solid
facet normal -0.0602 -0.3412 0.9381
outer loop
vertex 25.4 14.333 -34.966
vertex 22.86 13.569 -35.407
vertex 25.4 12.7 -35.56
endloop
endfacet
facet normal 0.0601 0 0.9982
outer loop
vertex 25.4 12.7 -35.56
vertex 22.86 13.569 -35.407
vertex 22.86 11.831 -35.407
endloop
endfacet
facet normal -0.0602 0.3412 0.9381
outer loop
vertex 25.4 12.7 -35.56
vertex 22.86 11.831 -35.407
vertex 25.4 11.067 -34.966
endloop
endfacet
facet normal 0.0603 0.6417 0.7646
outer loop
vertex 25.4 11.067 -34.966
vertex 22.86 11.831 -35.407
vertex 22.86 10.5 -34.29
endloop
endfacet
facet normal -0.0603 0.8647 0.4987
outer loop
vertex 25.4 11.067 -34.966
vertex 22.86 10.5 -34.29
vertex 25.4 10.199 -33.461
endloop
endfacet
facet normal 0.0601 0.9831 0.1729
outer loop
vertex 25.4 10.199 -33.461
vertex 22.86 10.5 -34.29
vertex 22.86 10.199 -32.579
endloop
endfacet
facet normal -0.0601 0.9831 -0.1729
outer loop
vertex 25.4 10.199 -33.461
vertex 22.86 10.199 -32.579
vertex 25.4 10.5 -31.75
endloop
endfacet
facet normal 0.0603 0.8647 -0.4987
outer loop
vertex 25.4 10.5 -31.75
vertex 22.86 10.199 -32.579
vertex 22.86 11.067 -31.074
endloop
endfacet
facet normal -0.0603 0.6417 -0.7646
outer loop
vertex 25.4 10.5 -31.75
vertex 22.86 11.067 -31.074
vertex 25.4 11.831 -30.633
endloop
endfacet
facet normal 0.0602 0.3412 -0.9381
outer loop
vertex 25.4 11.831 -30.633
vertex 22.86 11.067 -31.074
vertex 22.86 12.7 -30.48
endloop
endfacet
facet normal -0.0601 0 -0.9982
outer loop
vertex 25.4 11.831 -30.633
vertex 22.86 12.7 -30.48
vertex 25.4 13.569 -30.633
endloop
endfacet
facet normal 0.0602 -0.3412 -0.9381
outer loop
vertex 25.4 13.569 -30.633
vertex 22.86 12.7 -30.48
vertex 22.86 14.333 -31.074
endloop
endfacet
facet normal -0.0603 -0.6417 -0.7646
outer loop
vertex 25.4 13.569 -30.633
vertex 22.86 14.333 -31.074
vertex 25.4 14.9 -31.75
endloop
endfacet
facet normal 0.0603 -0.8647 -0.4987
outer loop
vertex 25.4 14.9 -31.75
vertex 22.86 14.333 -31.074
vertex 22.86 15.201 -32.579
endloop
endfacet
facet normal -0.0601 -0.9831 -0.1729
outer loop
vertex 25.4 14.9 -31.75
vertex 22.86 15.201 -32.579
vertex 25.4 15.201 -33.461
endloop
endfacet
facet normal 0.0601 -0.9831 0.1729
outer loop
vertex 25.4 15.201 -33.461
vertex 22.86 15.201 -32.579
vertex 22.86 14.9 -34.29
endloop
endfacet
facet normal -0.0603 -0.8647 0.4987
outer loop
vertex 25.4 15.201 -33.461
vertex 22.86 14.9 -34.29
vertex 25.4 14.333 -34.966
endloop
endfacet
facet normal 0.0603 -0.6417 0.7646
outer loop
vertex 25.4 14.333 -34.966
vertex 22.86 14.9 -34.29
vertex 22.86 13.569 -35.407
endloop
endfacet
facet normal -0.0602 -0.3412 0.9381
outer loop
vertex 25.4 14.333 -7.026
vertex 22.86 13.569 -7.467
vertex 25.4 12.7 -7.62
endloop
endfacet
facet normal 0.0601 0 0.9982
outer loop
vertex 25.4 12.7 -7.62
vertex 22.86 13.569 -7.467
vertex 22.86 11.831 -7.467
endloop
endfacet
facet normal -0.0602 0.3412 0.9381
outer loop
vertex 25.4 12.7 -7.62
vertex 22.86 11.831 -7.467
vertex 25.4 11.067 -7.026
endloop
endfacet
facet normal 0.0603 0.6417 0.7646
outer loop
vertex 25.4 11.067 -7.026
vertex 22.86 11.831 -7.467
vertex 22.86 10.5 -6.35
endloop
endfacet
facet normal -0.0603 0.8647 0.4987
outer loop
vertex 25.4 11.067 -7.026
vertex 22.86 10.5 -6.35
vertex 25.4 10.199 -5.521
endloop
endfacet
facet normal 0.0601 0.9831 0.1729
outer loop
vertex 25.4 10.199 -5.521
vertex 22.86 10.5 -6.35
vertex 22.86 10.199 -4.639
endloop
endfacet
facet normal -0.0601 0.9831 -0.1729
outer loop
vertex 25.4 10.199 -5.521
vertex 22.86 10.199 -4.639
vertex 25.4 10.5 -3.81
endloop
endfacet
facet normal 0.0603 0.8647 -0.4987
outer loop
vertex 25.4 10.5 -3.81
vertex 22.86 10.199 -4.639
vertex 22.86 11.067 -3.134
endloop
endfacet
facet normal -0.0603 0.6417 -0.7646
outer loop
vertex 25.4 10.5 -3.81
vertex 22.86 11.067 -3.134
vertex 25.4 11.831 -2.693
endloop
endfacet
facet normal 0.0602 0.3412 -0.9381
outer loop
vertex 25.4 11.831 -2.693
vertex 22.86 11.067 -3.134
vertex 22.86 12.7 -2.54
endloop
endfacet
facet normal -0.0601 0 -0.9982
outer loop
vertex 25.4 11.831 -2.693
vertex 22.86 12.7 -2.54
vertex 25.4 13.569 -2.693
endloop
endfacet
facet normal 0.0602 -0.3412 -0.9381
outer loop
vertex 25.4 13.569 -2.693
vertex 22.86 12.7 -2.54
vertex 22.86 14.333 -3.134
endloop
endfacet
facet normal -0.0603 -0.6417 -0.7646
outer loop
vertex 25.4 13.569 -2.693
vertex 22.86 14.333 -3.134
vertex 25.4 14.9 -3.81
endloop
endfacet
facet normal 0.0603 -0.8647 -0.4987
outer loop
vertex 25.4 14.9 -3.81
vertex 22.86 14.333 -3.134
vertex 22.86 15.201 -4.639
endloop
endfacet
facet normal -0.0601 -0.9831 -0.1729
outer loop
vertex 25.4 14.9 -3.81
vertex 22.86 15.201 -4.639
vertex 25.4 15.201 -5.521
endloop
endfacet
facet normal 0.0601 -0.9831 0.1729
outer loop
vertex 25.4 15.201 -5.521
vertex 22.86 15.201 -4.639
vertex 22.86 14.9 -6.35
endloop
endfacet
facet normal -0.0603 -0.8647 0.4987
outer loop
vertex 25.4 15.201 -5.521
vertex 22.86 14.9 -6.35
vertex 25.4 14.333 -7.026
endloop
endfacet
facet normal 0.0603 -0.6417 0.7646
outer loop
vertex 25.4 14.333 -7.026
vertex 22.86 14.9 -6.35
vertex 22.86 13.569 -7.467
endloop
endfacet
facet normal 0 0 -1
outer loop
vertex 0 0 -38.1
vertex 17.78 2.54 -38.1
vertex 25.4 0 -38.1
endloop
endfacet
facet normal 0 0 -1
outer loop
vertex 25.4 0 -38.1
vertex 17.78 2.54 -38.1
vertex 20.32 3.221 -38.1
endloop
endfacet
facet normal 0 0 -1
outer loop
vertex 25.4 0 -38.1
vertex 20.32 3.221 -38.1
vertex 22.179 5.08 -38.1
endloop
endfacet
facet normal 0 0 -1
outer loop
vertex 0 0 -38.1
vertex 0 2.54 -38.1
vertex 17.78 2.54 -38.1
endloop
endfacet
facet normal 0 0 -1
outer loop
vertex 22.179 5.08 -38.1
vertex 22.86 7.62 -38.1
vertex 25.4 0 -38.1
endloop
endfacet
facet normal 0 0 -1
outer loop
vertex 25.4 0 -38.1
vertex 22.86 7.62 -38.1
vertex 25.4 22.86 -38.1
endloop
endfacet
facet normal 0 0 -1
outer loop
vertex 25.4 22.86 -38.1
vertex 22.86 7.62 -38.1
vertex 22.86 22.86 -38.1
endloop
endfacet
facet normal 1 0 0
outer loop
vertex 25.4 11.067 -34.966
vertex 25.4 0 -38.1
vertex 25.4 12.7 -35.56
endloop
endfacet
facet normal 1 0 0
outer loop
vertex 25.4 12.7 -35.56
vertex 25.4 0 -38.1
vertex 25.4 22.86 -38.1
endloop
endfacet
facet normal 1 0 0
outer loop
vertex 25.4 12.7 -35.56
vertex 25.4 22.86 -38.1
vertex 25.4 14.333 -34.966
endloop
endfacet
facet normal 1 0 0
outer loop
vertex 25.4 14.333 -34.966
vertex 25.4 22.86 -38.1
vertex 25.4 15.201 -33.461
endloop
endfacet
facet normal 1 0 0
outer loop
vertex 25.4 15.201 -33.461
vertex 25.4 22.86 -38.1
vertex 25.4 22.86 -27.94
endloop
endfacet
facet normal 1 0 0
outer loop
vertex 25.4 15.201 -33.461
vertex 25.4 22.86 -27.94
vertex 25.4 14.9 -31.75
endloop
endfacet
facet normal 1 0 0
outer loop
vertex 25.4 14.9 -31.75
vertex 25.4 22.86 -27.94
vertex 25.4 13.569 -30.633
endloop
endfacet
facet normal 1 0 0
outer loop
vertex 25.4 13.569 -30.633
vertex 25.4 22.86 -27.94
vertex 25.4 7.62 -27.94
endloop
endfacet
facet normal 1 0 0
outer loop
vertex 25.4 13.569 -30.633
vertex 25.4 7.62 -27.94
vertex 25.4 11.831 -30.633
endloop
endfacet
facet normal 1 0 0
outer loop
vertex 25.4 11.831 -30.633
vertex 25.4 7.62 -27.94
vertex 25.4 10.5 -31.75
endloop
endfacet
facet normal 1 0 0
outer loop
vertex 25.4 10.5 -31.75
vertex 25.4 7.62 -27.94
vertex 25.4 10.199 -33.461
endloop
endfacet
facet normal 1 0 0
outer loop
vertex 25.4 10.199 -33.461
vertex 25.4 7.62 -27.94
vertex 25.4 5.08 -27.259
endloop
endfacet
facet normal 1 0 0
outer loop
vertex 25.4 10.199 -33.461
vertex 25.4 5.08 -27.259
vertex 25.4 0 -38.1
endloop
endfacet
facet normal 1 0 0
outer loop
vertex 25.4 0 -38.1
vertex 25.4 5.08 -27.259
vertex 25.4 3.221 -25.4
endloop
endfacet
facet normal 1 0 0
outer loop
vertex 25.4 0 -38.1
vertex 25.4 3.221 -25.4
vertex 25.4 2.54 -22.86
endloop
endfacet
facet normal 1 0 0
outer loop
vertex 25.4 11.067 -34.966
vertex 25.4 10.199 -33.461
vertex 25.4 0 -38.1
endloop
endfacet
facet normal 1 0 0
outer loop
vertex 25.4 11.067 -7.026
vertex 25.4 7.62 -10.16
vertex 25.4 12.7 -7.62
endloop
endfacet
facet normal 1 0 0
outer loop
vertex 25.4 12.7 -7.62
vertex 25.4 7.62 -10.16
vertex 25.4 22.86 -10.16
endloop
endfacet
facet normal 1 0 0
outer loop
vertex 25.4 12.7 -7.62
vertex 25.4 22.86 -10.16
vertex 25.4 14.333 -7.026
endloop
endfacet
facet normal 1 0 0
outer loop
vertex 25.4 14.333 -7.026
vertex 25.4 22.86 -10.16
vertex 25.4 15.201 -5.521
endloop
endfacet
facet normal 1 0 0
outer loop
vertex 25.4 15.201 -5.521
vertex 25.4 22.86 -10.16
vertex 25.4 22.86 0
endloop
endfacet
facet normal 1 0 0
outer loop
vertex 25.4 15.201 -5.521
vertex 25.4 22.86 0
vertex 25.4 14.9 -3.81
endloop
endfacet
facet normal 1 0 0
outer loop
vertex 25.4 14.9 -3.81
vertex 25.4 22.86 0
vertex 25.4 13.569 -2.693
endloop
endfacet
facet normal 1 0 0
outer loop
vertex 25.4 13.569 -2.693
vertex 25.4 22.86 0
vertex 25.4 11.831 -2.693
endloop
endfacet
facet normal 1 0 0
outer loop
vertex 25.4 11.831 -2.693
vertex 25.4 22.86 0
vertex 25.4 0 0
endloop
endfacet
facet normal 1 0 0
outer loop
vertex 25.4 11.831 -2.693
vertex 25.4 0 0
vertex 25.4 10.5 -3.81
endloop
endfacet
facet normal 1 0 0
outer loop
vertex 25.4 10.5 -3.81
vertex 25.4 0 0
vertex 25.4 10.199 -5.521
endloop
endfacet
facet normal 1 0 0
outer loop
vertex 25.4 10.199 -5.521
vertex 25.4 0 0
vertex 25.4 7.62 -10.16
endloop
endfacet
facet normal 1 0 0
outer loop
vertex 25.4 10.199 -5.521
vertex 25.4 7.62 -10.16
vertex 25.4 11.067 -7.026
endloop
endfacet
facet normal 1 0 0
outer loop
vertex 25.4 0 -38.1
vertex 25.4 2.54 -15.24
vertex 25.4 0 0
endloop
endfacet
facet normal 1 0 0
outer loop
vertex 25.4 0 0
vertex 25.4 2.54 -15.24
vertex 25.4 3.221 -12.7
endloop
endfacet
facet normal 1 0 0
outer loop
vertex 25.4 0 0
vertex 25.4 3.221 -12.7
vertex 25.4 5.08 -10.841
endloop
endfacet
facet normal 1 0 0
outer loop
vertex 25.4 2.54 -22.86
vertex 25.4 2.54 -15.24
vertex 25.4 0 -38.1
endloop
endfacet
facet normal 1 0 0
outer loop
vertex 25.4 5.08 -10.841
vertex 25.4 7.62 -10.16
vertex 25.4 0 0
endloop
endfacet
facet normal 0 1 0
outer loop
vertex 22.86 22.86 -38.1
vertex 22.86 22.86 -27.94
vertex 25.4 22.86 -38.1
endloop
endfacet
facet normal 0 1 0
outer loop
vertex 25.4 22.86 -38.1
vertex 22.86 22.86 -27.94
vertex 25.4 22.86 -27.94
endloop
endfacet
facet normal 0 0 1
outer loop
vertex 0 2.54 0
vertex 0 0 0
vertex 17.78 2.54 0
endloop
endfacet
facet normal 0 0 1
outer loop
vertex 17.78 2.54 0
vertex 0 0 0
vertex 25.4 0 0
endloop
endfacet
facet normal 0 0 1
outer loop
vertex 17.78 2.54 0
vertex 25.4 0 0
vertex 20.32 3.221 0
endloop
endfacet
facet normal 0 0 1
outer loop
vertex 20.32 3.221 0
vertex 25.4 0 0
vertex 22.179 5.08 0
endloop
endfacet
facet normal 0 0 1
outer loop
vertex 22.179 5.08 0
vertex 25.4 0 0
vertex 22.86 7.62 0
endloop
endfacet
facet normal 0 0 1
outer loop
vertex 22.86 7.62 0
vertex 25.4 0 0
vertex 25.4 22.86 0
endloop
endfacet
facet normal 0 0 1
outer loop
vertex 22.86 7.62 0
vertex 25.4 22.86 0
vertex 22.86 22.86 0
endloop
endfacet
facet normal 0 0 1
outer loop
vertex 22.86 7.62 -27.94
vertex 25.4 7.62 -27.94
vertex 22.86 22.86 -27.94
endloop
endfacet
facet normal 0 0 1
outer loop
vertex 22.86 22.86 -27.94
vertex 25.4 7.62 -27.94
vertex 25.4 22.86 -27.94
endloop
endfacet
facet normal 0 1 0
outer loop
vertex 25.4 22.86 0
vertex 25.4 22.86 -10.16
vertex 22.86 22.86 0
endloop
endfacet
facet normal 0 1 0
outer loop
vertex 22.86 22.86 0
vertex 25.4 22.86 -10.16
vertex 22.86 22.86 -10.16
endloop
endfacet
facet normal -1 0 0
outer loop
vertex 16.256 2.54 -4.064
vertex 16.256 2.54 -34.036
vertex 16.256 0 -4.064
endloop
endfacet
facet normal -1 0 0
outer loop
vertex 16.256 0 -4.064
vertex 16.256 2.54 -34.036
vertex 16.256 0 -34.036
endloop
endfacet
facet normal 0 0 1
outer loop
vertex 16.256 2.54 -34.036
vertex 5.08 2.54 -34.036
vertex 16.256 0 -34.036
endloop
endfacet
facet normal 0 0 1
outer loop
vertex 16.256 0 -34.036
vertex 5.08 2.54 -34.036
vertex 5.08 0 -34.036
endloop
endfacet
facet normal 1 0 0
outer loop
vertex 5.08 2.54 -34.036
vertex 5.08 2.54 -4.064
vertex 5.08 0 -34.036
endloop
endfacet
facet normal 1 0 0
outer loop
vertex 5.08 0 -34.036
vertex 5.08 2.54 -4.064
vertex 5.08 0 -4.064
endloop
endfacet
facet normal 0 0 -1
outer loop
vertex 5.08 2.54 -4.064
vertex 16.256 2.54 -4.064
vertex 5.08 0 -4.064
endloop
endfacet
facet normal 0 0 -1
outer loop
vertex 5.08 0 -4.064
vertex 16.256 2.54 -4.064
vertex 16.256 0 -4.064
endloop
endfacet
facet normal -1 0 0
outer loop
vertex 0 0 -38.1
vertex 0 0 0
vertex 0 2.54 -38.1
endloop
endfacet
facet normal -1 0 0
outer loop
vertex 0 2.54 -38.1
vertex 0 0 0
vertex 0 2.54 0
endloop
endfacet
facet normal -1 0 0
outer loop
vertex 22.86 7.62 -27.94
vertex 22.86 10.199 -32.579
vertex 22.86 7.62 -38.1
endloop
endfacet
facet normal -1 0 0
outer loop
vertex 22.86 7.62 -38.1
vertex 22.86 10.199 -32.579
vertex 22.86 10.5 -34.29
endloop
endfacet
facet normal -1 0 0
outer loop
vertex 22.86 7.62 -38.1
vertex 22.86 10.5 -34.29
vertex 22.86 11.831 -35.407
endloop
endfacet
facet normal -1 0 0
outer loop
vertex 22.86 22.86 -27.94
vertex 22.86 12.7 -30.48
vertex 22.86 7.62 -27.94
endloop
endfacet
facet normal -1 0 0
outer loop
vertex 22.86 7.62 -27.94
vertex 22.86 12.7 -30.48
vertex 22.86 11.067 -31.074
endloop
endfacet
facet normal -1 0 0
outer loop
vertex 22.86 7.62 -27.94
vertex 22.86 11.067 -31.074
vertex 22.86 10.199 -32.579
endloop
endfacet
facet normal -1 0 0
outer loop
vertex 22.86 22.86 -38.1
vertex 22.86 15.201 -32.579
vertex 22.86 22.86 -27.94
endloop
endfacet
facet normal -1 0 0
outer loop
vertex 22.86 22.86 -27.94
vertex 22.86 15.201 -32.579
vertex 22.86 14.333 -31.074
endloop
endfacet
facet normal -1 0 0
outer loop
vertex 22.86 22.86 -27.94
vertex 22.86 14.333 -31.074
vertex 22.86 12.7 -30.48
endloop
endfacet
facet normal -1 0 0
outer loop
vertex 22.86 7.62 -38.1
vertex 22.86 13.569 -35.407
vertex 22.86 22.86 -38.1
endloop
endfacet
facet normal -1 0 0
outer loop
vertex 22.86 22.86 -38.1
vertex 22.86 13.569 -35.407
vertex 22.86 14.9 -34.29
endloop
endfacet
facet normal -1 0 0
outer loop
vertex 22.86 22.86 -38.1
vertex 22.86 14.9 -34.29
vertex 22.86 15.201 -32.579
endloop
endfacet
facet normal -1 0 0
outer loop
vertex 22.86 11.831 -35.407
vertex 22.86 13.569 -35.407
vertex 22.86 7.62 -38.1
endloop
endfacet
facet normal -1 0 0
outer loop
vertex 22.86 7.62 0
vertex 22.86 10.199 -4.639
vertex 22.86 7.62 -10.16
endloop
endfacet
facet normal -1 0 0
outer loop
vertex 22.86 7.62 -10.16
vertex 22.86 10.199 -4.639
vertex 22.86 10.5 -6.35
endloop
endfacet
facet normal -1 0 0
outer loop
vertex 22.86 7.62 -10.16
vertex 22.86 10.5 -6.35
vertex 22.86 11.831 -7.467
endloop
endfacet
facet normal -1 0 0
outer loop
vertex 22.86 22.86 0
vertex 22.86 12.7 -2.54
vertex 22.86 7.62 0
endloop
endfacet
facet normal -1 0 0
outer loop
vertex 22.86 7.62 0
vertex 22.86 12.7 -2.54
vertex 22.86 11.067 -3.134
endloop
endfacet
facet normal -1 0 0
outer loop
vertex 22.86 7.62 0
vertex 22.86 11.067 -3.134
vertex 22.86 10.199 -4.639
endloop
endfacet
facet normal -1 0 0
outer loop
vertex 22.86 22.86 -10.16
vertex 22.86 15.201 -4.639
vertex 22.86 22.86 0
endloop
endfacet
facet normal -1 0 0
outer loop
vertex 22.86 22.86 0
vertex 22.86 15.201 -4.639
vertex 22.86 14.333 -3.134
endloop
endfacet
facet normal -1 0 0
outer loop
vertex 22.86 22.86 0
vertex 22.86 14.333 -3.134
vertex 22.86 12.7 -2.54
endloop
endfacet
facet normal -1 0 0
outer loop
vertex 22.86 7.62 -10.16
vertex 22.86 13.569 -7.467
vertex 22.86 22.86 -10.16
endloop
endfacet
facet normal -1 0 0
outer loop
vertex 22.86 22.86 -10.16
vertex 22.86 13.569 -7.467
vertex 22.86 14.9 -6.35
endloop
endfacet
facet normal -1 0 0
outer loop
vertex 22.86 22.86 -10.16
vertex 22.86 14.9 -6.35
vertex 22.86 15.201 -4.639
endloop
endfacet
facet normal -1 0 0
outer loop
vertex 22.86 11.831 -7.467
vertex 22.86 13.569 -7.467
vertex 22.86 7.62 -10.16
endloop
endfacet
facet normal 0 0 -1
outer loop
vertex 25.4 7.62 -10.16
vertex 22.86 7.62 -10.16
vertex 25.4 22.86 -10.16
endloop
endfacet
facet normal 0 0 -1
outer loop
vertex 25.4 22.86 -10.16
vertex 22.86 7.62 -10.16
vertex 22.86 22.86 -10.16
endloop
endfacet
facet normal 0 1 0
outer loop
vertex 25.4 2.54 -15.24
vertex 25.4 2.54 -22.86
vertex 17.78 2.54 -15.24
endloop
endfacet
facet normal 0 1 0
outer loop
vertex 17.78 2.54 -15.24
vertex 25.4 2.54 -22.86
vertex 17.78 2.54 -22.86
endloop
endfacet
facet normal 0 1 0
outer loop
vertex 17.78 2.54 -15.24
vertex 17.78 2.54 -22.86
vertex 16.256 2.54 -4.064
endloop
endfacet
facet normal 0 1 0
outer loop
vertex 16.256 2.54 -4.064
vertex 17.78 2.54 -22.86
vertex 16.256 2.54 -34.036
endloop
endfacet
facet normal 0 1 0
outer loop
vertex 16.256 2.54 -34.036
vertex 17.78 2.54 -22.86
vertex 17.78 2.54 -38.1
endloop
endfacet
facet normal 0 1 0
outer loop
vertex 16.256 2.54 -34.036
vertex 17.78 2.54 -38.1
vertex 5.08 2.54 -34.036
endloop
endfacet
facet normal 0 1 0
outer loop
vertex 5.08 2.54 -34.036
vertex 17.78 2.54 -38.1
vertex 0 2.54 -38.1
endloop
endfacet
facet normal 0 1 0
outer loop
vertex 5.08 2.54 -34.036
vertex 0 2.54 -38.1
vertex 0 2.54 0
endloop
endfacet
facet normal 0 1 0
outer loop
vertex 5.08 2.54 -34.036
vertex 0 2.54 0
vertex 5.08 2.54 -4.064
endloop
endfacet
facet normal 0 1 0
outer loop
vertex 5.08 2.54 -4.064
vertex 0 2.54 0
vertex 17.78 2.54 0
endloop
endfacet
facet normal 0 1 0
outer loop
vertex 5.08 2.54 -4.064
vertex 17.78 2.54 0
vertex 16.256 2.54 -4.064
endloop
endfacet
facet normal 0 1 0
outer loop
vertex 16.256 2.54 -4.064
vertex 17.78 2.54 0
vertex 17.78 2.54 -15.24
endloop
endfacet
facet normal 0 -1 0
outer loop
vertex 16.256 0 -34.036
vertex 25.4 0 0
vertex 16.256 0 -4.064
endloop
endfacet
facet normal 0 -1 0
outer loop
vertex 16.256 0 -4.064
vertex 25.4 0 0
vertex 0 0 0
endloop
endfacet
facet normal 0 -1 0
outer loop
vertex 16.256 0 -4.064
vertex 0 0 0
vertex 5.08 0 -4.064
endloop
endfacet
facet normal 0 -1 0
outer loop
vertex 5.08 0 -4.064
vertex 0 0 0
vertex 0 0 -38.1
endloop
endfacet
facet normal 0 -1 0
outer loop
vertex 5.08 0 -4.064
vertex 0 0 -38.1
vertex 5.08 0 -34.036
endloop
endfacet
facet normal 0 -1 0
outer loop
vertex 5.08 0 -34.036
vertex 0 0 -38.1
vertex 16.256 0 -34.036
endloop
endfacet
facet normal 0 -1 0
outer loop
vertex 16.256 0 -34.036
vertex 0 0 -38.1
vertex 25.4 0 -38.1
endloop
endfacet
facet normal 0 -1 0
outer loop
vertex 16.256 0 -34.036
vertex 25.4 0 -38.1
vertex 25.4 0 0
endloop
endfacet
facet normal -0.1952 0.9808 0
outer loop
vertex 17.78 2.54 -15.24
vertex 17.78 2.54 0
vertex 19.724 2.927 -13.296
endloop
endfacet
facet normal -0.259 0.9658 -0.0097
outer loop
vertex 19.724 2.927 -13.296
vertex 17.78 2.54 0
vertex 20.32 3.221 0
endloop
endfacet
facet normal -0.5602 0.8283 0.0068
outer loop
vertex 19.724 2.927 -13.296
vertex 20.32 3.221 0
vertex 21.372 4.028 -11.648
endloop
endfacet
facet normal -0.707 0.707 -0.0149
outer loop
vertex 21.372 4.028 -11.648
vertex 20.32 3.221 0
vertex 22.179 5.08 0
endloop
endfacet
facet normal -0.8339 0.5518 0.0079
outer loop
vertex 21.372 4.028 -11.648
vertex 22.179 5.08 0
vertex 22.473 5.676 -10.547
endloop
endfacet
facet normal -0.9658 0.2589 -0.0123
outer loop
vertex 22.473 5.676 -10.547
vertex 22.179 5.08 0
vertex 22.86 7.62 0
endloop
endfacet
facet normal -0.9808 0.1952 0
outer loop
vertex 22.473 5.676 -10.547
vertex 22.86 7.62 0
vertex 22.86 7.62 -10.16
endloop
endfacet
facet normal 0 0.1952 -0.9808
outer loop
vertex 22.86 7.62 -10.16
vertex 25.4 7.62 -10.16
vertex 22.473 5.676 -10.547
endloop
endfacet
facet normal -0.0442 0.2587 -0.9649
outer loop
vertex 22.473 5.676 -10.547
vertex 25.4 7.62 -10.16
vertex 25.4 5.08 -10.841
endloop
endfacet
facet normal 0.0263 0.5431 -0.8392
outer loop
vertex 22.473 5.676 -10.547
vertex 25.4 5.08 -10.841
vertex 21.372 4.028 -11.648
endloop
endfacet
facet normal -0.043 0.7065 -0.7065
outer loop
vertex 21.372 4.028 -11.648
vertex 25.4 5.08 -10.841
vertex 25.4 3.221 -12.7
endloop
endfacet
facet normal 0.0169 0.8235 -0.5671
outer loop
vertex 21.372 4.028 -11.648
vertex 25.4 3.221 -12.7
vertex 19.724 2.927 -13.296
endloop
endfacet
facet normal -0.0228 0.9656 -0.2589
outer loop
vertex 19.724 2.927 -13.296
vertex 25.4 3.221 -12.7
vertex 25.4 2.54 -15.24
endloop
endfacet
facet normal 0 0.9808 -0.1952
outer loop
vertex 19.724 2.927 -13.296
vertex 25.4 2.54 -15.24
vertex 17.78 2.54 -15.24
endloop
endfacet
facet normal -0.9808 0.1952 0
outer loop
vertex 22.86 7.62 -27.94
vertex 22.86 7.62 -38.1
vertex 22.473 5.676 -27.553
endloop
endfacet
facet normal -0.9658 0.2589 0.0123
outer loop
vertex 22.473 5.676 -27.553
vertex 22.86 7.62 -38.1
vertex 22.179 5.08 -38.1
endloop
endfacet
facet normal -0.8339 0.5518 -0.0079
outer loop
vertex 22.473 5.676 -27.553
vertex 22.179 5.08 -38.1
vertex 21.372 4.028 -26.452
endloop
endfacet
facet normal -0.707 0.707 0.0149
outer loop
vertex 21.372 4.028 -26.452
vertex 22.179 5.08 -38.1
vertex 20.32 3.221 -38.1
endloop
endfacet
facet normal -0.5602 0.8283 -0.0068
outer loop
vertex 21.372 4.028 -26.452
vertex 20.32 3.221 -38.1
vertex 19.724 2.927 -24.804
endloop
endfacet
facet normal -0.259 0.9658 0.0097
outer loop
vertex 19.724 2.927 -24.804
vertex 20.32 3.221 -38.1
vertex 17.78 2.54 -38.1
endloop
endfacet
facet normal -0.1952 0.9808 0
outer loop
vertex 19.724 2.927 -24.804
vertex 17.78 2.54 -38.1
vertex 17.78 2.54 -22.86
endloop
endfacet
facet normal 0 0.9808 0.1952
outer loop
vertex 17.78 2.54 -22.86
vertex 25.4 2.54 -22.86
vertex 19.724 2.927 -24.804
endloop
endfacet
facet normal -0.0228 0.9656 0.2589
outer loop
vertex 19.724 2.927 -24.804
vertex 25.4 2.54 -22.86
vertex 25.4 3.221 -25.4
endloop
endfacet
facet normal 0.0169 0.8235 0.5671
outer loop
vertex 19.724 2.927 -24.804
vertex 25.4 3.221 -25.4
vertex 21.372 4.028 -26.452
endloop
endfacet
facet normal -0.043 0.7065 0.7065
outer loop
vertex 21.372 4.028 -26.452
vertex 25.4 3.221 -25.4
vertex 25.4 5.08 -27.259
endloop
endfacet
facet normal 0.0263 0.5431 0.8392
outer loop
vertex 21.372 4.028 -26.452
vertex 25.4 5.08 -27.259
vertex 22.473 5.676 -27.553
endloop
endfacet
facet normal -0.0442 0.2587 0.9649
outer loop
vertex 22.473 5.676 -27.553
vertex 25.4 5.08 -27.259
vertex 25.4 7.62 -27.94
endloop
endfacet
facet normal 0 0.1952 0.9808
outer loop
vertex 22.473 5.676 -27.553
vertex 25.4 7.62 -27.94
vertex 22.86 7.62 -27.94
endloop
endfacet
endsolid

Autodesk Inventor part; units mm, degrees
ref_plane "YZ Plane" through (0, 0, 0) normal (1, 0, 0) x (0, 1, 0)
ref_plane "XZ Plane" through (0, 0, 0) normal (0, 1, 0) x (-1, 0, 0)
ref_plane "XY Plane" through (0, 0, 0) normal (0, 0, 1) x (1, 0, 0)
sketch "Sketch1" plane through (0, 0, 0) normal (0, 1, 0) x (-1, 0, 0)
  line L0 (0, 0) -> (-25.4, 0)
  line L1 (-25.4, 0) -> (-25.4, -38.1)
  line L2 (-25.4, -38.1) -> (0, -38.1)
  line L3 (0, -38.1) -> (0, 0)
  dimension "d0" = 25.4
  dimension "d1" = 38.1
extrude "Extrusion1" add sketch "Sketch1" along normal blind 2.54
sketch "Sketch3" plane through (0, 2.54, 0) normal (0, 1, 0) x (1, 0, 0)
  line L0 (0, 0) -> (5.08, 0)
  line L1 (5.08, 0) -> (5.08, 4.064)
  line L2 (5.08, 4.064) -> (0, 4.064)
  line L3 (0, 4.064) -> (0, 0)
  line L4 (25.4, 38.1) -> (0, 38.1) projected
  line L5 (0, 38.1) -> (5.08, 38.1)
  line L6 (5.08, 38.1) -> (5.08, 34.036)
  line L7 (5.08, 34.036) -> (0, 34.036)
  line L8 (0, 34.036) -> (0, 38.1)
  line L9 (5.08, 4.064) -> (16.256, 4.064)
  line L10 (16.256, 4.064) -> (16.256, 34.036)
  line L11 (16.256, 34.036) -> (5.08, 34.036)
  line L12 (5.08, 34.036) -> (5.08, 4.064)
  dimension "d7" = 5.08
  dimension "d8" = 4.064
  dimension "d9" = 5.08
  dimension "d10" = 4.064
  dimension "d11" = 11.176
extrude "Extrusion2" cut sketch "Sketch3" against normal blind 2.54 contours L12 L11 L10 L9
sketch "Sketch4" plane through (0, 2.54, 0) normal (0, 1, 0) x (1, 0, 0)
  line L0 (25.4, 0) -> (25.4, 38.1) projected
  line L1 (25.4, 0) -> (22.86, 0)
  line L2 (22.86, 0) -> (22.86, 10.16)
  line L3 (22.86, 10.16) -> (25.4, 10.16)
  line L4 (25.4, 10.16) -> (25.4, 0)
  line L5 (25.4, 38.1) -> (22.86, 38.1)
  line L6 (22.86, 38.1) -> (22.86, 27.94)
  line L7 (22.86, 27.94) -> (25.4, 27.94)
  line L8 (25.4, 27.94) -> (25.4, 38.1)
  point P0 (0, 0)
  dimension "d14" = 2.54
  dimension "d15" = 10.16
  dimension "d16" = 2.54
  dimension "d17" = 10.16
extrude "Extrusion3" add sketch "Sketch4" along normal blind 20.32
sketch "Sketch5" plane through (22.86, 2.54, -10.16) normal (-1, 0, 0) x (0, 0, 1)
  line L0 (10.16, 20.32) -> (0, 20.32) projected
  line L1 (5.08, 20.32) -> (5.08, 10.16)
  point P0 (10.16, -2.54)
  dimension "d20" = 10.16
hole "Hole1" at (22.86, 12.7, -5.08) direction (1, 0, 0) diameter 5.08 end through all
sketch "Sketch6" plane through (22.86, 2.54, -38.1) normal (-1, 0, 0) x (0, 0, 1)
  line L0 (10.16, 20.32) -> (0, 20.32) projected
  line L1 (5.08, 20.32) -> (5.08, 10.16)
  point P0 (38.1, -2.54)
  dimension "d28" = 10.16
hole "Hole2" at (22.86, 12.7, -33.02) direction (1, 0, 0) diameter 5.08 end through all
fillet "Fillet1" radius 5.08 4 edges at (22.86, 2.54, -5.08) (22.86, 2.54, -33.02) (24.13, 2.54, -27.94) (24.13, 2.54, -10.16)
properties part number "Actobotics Power Switch Mount v2"
